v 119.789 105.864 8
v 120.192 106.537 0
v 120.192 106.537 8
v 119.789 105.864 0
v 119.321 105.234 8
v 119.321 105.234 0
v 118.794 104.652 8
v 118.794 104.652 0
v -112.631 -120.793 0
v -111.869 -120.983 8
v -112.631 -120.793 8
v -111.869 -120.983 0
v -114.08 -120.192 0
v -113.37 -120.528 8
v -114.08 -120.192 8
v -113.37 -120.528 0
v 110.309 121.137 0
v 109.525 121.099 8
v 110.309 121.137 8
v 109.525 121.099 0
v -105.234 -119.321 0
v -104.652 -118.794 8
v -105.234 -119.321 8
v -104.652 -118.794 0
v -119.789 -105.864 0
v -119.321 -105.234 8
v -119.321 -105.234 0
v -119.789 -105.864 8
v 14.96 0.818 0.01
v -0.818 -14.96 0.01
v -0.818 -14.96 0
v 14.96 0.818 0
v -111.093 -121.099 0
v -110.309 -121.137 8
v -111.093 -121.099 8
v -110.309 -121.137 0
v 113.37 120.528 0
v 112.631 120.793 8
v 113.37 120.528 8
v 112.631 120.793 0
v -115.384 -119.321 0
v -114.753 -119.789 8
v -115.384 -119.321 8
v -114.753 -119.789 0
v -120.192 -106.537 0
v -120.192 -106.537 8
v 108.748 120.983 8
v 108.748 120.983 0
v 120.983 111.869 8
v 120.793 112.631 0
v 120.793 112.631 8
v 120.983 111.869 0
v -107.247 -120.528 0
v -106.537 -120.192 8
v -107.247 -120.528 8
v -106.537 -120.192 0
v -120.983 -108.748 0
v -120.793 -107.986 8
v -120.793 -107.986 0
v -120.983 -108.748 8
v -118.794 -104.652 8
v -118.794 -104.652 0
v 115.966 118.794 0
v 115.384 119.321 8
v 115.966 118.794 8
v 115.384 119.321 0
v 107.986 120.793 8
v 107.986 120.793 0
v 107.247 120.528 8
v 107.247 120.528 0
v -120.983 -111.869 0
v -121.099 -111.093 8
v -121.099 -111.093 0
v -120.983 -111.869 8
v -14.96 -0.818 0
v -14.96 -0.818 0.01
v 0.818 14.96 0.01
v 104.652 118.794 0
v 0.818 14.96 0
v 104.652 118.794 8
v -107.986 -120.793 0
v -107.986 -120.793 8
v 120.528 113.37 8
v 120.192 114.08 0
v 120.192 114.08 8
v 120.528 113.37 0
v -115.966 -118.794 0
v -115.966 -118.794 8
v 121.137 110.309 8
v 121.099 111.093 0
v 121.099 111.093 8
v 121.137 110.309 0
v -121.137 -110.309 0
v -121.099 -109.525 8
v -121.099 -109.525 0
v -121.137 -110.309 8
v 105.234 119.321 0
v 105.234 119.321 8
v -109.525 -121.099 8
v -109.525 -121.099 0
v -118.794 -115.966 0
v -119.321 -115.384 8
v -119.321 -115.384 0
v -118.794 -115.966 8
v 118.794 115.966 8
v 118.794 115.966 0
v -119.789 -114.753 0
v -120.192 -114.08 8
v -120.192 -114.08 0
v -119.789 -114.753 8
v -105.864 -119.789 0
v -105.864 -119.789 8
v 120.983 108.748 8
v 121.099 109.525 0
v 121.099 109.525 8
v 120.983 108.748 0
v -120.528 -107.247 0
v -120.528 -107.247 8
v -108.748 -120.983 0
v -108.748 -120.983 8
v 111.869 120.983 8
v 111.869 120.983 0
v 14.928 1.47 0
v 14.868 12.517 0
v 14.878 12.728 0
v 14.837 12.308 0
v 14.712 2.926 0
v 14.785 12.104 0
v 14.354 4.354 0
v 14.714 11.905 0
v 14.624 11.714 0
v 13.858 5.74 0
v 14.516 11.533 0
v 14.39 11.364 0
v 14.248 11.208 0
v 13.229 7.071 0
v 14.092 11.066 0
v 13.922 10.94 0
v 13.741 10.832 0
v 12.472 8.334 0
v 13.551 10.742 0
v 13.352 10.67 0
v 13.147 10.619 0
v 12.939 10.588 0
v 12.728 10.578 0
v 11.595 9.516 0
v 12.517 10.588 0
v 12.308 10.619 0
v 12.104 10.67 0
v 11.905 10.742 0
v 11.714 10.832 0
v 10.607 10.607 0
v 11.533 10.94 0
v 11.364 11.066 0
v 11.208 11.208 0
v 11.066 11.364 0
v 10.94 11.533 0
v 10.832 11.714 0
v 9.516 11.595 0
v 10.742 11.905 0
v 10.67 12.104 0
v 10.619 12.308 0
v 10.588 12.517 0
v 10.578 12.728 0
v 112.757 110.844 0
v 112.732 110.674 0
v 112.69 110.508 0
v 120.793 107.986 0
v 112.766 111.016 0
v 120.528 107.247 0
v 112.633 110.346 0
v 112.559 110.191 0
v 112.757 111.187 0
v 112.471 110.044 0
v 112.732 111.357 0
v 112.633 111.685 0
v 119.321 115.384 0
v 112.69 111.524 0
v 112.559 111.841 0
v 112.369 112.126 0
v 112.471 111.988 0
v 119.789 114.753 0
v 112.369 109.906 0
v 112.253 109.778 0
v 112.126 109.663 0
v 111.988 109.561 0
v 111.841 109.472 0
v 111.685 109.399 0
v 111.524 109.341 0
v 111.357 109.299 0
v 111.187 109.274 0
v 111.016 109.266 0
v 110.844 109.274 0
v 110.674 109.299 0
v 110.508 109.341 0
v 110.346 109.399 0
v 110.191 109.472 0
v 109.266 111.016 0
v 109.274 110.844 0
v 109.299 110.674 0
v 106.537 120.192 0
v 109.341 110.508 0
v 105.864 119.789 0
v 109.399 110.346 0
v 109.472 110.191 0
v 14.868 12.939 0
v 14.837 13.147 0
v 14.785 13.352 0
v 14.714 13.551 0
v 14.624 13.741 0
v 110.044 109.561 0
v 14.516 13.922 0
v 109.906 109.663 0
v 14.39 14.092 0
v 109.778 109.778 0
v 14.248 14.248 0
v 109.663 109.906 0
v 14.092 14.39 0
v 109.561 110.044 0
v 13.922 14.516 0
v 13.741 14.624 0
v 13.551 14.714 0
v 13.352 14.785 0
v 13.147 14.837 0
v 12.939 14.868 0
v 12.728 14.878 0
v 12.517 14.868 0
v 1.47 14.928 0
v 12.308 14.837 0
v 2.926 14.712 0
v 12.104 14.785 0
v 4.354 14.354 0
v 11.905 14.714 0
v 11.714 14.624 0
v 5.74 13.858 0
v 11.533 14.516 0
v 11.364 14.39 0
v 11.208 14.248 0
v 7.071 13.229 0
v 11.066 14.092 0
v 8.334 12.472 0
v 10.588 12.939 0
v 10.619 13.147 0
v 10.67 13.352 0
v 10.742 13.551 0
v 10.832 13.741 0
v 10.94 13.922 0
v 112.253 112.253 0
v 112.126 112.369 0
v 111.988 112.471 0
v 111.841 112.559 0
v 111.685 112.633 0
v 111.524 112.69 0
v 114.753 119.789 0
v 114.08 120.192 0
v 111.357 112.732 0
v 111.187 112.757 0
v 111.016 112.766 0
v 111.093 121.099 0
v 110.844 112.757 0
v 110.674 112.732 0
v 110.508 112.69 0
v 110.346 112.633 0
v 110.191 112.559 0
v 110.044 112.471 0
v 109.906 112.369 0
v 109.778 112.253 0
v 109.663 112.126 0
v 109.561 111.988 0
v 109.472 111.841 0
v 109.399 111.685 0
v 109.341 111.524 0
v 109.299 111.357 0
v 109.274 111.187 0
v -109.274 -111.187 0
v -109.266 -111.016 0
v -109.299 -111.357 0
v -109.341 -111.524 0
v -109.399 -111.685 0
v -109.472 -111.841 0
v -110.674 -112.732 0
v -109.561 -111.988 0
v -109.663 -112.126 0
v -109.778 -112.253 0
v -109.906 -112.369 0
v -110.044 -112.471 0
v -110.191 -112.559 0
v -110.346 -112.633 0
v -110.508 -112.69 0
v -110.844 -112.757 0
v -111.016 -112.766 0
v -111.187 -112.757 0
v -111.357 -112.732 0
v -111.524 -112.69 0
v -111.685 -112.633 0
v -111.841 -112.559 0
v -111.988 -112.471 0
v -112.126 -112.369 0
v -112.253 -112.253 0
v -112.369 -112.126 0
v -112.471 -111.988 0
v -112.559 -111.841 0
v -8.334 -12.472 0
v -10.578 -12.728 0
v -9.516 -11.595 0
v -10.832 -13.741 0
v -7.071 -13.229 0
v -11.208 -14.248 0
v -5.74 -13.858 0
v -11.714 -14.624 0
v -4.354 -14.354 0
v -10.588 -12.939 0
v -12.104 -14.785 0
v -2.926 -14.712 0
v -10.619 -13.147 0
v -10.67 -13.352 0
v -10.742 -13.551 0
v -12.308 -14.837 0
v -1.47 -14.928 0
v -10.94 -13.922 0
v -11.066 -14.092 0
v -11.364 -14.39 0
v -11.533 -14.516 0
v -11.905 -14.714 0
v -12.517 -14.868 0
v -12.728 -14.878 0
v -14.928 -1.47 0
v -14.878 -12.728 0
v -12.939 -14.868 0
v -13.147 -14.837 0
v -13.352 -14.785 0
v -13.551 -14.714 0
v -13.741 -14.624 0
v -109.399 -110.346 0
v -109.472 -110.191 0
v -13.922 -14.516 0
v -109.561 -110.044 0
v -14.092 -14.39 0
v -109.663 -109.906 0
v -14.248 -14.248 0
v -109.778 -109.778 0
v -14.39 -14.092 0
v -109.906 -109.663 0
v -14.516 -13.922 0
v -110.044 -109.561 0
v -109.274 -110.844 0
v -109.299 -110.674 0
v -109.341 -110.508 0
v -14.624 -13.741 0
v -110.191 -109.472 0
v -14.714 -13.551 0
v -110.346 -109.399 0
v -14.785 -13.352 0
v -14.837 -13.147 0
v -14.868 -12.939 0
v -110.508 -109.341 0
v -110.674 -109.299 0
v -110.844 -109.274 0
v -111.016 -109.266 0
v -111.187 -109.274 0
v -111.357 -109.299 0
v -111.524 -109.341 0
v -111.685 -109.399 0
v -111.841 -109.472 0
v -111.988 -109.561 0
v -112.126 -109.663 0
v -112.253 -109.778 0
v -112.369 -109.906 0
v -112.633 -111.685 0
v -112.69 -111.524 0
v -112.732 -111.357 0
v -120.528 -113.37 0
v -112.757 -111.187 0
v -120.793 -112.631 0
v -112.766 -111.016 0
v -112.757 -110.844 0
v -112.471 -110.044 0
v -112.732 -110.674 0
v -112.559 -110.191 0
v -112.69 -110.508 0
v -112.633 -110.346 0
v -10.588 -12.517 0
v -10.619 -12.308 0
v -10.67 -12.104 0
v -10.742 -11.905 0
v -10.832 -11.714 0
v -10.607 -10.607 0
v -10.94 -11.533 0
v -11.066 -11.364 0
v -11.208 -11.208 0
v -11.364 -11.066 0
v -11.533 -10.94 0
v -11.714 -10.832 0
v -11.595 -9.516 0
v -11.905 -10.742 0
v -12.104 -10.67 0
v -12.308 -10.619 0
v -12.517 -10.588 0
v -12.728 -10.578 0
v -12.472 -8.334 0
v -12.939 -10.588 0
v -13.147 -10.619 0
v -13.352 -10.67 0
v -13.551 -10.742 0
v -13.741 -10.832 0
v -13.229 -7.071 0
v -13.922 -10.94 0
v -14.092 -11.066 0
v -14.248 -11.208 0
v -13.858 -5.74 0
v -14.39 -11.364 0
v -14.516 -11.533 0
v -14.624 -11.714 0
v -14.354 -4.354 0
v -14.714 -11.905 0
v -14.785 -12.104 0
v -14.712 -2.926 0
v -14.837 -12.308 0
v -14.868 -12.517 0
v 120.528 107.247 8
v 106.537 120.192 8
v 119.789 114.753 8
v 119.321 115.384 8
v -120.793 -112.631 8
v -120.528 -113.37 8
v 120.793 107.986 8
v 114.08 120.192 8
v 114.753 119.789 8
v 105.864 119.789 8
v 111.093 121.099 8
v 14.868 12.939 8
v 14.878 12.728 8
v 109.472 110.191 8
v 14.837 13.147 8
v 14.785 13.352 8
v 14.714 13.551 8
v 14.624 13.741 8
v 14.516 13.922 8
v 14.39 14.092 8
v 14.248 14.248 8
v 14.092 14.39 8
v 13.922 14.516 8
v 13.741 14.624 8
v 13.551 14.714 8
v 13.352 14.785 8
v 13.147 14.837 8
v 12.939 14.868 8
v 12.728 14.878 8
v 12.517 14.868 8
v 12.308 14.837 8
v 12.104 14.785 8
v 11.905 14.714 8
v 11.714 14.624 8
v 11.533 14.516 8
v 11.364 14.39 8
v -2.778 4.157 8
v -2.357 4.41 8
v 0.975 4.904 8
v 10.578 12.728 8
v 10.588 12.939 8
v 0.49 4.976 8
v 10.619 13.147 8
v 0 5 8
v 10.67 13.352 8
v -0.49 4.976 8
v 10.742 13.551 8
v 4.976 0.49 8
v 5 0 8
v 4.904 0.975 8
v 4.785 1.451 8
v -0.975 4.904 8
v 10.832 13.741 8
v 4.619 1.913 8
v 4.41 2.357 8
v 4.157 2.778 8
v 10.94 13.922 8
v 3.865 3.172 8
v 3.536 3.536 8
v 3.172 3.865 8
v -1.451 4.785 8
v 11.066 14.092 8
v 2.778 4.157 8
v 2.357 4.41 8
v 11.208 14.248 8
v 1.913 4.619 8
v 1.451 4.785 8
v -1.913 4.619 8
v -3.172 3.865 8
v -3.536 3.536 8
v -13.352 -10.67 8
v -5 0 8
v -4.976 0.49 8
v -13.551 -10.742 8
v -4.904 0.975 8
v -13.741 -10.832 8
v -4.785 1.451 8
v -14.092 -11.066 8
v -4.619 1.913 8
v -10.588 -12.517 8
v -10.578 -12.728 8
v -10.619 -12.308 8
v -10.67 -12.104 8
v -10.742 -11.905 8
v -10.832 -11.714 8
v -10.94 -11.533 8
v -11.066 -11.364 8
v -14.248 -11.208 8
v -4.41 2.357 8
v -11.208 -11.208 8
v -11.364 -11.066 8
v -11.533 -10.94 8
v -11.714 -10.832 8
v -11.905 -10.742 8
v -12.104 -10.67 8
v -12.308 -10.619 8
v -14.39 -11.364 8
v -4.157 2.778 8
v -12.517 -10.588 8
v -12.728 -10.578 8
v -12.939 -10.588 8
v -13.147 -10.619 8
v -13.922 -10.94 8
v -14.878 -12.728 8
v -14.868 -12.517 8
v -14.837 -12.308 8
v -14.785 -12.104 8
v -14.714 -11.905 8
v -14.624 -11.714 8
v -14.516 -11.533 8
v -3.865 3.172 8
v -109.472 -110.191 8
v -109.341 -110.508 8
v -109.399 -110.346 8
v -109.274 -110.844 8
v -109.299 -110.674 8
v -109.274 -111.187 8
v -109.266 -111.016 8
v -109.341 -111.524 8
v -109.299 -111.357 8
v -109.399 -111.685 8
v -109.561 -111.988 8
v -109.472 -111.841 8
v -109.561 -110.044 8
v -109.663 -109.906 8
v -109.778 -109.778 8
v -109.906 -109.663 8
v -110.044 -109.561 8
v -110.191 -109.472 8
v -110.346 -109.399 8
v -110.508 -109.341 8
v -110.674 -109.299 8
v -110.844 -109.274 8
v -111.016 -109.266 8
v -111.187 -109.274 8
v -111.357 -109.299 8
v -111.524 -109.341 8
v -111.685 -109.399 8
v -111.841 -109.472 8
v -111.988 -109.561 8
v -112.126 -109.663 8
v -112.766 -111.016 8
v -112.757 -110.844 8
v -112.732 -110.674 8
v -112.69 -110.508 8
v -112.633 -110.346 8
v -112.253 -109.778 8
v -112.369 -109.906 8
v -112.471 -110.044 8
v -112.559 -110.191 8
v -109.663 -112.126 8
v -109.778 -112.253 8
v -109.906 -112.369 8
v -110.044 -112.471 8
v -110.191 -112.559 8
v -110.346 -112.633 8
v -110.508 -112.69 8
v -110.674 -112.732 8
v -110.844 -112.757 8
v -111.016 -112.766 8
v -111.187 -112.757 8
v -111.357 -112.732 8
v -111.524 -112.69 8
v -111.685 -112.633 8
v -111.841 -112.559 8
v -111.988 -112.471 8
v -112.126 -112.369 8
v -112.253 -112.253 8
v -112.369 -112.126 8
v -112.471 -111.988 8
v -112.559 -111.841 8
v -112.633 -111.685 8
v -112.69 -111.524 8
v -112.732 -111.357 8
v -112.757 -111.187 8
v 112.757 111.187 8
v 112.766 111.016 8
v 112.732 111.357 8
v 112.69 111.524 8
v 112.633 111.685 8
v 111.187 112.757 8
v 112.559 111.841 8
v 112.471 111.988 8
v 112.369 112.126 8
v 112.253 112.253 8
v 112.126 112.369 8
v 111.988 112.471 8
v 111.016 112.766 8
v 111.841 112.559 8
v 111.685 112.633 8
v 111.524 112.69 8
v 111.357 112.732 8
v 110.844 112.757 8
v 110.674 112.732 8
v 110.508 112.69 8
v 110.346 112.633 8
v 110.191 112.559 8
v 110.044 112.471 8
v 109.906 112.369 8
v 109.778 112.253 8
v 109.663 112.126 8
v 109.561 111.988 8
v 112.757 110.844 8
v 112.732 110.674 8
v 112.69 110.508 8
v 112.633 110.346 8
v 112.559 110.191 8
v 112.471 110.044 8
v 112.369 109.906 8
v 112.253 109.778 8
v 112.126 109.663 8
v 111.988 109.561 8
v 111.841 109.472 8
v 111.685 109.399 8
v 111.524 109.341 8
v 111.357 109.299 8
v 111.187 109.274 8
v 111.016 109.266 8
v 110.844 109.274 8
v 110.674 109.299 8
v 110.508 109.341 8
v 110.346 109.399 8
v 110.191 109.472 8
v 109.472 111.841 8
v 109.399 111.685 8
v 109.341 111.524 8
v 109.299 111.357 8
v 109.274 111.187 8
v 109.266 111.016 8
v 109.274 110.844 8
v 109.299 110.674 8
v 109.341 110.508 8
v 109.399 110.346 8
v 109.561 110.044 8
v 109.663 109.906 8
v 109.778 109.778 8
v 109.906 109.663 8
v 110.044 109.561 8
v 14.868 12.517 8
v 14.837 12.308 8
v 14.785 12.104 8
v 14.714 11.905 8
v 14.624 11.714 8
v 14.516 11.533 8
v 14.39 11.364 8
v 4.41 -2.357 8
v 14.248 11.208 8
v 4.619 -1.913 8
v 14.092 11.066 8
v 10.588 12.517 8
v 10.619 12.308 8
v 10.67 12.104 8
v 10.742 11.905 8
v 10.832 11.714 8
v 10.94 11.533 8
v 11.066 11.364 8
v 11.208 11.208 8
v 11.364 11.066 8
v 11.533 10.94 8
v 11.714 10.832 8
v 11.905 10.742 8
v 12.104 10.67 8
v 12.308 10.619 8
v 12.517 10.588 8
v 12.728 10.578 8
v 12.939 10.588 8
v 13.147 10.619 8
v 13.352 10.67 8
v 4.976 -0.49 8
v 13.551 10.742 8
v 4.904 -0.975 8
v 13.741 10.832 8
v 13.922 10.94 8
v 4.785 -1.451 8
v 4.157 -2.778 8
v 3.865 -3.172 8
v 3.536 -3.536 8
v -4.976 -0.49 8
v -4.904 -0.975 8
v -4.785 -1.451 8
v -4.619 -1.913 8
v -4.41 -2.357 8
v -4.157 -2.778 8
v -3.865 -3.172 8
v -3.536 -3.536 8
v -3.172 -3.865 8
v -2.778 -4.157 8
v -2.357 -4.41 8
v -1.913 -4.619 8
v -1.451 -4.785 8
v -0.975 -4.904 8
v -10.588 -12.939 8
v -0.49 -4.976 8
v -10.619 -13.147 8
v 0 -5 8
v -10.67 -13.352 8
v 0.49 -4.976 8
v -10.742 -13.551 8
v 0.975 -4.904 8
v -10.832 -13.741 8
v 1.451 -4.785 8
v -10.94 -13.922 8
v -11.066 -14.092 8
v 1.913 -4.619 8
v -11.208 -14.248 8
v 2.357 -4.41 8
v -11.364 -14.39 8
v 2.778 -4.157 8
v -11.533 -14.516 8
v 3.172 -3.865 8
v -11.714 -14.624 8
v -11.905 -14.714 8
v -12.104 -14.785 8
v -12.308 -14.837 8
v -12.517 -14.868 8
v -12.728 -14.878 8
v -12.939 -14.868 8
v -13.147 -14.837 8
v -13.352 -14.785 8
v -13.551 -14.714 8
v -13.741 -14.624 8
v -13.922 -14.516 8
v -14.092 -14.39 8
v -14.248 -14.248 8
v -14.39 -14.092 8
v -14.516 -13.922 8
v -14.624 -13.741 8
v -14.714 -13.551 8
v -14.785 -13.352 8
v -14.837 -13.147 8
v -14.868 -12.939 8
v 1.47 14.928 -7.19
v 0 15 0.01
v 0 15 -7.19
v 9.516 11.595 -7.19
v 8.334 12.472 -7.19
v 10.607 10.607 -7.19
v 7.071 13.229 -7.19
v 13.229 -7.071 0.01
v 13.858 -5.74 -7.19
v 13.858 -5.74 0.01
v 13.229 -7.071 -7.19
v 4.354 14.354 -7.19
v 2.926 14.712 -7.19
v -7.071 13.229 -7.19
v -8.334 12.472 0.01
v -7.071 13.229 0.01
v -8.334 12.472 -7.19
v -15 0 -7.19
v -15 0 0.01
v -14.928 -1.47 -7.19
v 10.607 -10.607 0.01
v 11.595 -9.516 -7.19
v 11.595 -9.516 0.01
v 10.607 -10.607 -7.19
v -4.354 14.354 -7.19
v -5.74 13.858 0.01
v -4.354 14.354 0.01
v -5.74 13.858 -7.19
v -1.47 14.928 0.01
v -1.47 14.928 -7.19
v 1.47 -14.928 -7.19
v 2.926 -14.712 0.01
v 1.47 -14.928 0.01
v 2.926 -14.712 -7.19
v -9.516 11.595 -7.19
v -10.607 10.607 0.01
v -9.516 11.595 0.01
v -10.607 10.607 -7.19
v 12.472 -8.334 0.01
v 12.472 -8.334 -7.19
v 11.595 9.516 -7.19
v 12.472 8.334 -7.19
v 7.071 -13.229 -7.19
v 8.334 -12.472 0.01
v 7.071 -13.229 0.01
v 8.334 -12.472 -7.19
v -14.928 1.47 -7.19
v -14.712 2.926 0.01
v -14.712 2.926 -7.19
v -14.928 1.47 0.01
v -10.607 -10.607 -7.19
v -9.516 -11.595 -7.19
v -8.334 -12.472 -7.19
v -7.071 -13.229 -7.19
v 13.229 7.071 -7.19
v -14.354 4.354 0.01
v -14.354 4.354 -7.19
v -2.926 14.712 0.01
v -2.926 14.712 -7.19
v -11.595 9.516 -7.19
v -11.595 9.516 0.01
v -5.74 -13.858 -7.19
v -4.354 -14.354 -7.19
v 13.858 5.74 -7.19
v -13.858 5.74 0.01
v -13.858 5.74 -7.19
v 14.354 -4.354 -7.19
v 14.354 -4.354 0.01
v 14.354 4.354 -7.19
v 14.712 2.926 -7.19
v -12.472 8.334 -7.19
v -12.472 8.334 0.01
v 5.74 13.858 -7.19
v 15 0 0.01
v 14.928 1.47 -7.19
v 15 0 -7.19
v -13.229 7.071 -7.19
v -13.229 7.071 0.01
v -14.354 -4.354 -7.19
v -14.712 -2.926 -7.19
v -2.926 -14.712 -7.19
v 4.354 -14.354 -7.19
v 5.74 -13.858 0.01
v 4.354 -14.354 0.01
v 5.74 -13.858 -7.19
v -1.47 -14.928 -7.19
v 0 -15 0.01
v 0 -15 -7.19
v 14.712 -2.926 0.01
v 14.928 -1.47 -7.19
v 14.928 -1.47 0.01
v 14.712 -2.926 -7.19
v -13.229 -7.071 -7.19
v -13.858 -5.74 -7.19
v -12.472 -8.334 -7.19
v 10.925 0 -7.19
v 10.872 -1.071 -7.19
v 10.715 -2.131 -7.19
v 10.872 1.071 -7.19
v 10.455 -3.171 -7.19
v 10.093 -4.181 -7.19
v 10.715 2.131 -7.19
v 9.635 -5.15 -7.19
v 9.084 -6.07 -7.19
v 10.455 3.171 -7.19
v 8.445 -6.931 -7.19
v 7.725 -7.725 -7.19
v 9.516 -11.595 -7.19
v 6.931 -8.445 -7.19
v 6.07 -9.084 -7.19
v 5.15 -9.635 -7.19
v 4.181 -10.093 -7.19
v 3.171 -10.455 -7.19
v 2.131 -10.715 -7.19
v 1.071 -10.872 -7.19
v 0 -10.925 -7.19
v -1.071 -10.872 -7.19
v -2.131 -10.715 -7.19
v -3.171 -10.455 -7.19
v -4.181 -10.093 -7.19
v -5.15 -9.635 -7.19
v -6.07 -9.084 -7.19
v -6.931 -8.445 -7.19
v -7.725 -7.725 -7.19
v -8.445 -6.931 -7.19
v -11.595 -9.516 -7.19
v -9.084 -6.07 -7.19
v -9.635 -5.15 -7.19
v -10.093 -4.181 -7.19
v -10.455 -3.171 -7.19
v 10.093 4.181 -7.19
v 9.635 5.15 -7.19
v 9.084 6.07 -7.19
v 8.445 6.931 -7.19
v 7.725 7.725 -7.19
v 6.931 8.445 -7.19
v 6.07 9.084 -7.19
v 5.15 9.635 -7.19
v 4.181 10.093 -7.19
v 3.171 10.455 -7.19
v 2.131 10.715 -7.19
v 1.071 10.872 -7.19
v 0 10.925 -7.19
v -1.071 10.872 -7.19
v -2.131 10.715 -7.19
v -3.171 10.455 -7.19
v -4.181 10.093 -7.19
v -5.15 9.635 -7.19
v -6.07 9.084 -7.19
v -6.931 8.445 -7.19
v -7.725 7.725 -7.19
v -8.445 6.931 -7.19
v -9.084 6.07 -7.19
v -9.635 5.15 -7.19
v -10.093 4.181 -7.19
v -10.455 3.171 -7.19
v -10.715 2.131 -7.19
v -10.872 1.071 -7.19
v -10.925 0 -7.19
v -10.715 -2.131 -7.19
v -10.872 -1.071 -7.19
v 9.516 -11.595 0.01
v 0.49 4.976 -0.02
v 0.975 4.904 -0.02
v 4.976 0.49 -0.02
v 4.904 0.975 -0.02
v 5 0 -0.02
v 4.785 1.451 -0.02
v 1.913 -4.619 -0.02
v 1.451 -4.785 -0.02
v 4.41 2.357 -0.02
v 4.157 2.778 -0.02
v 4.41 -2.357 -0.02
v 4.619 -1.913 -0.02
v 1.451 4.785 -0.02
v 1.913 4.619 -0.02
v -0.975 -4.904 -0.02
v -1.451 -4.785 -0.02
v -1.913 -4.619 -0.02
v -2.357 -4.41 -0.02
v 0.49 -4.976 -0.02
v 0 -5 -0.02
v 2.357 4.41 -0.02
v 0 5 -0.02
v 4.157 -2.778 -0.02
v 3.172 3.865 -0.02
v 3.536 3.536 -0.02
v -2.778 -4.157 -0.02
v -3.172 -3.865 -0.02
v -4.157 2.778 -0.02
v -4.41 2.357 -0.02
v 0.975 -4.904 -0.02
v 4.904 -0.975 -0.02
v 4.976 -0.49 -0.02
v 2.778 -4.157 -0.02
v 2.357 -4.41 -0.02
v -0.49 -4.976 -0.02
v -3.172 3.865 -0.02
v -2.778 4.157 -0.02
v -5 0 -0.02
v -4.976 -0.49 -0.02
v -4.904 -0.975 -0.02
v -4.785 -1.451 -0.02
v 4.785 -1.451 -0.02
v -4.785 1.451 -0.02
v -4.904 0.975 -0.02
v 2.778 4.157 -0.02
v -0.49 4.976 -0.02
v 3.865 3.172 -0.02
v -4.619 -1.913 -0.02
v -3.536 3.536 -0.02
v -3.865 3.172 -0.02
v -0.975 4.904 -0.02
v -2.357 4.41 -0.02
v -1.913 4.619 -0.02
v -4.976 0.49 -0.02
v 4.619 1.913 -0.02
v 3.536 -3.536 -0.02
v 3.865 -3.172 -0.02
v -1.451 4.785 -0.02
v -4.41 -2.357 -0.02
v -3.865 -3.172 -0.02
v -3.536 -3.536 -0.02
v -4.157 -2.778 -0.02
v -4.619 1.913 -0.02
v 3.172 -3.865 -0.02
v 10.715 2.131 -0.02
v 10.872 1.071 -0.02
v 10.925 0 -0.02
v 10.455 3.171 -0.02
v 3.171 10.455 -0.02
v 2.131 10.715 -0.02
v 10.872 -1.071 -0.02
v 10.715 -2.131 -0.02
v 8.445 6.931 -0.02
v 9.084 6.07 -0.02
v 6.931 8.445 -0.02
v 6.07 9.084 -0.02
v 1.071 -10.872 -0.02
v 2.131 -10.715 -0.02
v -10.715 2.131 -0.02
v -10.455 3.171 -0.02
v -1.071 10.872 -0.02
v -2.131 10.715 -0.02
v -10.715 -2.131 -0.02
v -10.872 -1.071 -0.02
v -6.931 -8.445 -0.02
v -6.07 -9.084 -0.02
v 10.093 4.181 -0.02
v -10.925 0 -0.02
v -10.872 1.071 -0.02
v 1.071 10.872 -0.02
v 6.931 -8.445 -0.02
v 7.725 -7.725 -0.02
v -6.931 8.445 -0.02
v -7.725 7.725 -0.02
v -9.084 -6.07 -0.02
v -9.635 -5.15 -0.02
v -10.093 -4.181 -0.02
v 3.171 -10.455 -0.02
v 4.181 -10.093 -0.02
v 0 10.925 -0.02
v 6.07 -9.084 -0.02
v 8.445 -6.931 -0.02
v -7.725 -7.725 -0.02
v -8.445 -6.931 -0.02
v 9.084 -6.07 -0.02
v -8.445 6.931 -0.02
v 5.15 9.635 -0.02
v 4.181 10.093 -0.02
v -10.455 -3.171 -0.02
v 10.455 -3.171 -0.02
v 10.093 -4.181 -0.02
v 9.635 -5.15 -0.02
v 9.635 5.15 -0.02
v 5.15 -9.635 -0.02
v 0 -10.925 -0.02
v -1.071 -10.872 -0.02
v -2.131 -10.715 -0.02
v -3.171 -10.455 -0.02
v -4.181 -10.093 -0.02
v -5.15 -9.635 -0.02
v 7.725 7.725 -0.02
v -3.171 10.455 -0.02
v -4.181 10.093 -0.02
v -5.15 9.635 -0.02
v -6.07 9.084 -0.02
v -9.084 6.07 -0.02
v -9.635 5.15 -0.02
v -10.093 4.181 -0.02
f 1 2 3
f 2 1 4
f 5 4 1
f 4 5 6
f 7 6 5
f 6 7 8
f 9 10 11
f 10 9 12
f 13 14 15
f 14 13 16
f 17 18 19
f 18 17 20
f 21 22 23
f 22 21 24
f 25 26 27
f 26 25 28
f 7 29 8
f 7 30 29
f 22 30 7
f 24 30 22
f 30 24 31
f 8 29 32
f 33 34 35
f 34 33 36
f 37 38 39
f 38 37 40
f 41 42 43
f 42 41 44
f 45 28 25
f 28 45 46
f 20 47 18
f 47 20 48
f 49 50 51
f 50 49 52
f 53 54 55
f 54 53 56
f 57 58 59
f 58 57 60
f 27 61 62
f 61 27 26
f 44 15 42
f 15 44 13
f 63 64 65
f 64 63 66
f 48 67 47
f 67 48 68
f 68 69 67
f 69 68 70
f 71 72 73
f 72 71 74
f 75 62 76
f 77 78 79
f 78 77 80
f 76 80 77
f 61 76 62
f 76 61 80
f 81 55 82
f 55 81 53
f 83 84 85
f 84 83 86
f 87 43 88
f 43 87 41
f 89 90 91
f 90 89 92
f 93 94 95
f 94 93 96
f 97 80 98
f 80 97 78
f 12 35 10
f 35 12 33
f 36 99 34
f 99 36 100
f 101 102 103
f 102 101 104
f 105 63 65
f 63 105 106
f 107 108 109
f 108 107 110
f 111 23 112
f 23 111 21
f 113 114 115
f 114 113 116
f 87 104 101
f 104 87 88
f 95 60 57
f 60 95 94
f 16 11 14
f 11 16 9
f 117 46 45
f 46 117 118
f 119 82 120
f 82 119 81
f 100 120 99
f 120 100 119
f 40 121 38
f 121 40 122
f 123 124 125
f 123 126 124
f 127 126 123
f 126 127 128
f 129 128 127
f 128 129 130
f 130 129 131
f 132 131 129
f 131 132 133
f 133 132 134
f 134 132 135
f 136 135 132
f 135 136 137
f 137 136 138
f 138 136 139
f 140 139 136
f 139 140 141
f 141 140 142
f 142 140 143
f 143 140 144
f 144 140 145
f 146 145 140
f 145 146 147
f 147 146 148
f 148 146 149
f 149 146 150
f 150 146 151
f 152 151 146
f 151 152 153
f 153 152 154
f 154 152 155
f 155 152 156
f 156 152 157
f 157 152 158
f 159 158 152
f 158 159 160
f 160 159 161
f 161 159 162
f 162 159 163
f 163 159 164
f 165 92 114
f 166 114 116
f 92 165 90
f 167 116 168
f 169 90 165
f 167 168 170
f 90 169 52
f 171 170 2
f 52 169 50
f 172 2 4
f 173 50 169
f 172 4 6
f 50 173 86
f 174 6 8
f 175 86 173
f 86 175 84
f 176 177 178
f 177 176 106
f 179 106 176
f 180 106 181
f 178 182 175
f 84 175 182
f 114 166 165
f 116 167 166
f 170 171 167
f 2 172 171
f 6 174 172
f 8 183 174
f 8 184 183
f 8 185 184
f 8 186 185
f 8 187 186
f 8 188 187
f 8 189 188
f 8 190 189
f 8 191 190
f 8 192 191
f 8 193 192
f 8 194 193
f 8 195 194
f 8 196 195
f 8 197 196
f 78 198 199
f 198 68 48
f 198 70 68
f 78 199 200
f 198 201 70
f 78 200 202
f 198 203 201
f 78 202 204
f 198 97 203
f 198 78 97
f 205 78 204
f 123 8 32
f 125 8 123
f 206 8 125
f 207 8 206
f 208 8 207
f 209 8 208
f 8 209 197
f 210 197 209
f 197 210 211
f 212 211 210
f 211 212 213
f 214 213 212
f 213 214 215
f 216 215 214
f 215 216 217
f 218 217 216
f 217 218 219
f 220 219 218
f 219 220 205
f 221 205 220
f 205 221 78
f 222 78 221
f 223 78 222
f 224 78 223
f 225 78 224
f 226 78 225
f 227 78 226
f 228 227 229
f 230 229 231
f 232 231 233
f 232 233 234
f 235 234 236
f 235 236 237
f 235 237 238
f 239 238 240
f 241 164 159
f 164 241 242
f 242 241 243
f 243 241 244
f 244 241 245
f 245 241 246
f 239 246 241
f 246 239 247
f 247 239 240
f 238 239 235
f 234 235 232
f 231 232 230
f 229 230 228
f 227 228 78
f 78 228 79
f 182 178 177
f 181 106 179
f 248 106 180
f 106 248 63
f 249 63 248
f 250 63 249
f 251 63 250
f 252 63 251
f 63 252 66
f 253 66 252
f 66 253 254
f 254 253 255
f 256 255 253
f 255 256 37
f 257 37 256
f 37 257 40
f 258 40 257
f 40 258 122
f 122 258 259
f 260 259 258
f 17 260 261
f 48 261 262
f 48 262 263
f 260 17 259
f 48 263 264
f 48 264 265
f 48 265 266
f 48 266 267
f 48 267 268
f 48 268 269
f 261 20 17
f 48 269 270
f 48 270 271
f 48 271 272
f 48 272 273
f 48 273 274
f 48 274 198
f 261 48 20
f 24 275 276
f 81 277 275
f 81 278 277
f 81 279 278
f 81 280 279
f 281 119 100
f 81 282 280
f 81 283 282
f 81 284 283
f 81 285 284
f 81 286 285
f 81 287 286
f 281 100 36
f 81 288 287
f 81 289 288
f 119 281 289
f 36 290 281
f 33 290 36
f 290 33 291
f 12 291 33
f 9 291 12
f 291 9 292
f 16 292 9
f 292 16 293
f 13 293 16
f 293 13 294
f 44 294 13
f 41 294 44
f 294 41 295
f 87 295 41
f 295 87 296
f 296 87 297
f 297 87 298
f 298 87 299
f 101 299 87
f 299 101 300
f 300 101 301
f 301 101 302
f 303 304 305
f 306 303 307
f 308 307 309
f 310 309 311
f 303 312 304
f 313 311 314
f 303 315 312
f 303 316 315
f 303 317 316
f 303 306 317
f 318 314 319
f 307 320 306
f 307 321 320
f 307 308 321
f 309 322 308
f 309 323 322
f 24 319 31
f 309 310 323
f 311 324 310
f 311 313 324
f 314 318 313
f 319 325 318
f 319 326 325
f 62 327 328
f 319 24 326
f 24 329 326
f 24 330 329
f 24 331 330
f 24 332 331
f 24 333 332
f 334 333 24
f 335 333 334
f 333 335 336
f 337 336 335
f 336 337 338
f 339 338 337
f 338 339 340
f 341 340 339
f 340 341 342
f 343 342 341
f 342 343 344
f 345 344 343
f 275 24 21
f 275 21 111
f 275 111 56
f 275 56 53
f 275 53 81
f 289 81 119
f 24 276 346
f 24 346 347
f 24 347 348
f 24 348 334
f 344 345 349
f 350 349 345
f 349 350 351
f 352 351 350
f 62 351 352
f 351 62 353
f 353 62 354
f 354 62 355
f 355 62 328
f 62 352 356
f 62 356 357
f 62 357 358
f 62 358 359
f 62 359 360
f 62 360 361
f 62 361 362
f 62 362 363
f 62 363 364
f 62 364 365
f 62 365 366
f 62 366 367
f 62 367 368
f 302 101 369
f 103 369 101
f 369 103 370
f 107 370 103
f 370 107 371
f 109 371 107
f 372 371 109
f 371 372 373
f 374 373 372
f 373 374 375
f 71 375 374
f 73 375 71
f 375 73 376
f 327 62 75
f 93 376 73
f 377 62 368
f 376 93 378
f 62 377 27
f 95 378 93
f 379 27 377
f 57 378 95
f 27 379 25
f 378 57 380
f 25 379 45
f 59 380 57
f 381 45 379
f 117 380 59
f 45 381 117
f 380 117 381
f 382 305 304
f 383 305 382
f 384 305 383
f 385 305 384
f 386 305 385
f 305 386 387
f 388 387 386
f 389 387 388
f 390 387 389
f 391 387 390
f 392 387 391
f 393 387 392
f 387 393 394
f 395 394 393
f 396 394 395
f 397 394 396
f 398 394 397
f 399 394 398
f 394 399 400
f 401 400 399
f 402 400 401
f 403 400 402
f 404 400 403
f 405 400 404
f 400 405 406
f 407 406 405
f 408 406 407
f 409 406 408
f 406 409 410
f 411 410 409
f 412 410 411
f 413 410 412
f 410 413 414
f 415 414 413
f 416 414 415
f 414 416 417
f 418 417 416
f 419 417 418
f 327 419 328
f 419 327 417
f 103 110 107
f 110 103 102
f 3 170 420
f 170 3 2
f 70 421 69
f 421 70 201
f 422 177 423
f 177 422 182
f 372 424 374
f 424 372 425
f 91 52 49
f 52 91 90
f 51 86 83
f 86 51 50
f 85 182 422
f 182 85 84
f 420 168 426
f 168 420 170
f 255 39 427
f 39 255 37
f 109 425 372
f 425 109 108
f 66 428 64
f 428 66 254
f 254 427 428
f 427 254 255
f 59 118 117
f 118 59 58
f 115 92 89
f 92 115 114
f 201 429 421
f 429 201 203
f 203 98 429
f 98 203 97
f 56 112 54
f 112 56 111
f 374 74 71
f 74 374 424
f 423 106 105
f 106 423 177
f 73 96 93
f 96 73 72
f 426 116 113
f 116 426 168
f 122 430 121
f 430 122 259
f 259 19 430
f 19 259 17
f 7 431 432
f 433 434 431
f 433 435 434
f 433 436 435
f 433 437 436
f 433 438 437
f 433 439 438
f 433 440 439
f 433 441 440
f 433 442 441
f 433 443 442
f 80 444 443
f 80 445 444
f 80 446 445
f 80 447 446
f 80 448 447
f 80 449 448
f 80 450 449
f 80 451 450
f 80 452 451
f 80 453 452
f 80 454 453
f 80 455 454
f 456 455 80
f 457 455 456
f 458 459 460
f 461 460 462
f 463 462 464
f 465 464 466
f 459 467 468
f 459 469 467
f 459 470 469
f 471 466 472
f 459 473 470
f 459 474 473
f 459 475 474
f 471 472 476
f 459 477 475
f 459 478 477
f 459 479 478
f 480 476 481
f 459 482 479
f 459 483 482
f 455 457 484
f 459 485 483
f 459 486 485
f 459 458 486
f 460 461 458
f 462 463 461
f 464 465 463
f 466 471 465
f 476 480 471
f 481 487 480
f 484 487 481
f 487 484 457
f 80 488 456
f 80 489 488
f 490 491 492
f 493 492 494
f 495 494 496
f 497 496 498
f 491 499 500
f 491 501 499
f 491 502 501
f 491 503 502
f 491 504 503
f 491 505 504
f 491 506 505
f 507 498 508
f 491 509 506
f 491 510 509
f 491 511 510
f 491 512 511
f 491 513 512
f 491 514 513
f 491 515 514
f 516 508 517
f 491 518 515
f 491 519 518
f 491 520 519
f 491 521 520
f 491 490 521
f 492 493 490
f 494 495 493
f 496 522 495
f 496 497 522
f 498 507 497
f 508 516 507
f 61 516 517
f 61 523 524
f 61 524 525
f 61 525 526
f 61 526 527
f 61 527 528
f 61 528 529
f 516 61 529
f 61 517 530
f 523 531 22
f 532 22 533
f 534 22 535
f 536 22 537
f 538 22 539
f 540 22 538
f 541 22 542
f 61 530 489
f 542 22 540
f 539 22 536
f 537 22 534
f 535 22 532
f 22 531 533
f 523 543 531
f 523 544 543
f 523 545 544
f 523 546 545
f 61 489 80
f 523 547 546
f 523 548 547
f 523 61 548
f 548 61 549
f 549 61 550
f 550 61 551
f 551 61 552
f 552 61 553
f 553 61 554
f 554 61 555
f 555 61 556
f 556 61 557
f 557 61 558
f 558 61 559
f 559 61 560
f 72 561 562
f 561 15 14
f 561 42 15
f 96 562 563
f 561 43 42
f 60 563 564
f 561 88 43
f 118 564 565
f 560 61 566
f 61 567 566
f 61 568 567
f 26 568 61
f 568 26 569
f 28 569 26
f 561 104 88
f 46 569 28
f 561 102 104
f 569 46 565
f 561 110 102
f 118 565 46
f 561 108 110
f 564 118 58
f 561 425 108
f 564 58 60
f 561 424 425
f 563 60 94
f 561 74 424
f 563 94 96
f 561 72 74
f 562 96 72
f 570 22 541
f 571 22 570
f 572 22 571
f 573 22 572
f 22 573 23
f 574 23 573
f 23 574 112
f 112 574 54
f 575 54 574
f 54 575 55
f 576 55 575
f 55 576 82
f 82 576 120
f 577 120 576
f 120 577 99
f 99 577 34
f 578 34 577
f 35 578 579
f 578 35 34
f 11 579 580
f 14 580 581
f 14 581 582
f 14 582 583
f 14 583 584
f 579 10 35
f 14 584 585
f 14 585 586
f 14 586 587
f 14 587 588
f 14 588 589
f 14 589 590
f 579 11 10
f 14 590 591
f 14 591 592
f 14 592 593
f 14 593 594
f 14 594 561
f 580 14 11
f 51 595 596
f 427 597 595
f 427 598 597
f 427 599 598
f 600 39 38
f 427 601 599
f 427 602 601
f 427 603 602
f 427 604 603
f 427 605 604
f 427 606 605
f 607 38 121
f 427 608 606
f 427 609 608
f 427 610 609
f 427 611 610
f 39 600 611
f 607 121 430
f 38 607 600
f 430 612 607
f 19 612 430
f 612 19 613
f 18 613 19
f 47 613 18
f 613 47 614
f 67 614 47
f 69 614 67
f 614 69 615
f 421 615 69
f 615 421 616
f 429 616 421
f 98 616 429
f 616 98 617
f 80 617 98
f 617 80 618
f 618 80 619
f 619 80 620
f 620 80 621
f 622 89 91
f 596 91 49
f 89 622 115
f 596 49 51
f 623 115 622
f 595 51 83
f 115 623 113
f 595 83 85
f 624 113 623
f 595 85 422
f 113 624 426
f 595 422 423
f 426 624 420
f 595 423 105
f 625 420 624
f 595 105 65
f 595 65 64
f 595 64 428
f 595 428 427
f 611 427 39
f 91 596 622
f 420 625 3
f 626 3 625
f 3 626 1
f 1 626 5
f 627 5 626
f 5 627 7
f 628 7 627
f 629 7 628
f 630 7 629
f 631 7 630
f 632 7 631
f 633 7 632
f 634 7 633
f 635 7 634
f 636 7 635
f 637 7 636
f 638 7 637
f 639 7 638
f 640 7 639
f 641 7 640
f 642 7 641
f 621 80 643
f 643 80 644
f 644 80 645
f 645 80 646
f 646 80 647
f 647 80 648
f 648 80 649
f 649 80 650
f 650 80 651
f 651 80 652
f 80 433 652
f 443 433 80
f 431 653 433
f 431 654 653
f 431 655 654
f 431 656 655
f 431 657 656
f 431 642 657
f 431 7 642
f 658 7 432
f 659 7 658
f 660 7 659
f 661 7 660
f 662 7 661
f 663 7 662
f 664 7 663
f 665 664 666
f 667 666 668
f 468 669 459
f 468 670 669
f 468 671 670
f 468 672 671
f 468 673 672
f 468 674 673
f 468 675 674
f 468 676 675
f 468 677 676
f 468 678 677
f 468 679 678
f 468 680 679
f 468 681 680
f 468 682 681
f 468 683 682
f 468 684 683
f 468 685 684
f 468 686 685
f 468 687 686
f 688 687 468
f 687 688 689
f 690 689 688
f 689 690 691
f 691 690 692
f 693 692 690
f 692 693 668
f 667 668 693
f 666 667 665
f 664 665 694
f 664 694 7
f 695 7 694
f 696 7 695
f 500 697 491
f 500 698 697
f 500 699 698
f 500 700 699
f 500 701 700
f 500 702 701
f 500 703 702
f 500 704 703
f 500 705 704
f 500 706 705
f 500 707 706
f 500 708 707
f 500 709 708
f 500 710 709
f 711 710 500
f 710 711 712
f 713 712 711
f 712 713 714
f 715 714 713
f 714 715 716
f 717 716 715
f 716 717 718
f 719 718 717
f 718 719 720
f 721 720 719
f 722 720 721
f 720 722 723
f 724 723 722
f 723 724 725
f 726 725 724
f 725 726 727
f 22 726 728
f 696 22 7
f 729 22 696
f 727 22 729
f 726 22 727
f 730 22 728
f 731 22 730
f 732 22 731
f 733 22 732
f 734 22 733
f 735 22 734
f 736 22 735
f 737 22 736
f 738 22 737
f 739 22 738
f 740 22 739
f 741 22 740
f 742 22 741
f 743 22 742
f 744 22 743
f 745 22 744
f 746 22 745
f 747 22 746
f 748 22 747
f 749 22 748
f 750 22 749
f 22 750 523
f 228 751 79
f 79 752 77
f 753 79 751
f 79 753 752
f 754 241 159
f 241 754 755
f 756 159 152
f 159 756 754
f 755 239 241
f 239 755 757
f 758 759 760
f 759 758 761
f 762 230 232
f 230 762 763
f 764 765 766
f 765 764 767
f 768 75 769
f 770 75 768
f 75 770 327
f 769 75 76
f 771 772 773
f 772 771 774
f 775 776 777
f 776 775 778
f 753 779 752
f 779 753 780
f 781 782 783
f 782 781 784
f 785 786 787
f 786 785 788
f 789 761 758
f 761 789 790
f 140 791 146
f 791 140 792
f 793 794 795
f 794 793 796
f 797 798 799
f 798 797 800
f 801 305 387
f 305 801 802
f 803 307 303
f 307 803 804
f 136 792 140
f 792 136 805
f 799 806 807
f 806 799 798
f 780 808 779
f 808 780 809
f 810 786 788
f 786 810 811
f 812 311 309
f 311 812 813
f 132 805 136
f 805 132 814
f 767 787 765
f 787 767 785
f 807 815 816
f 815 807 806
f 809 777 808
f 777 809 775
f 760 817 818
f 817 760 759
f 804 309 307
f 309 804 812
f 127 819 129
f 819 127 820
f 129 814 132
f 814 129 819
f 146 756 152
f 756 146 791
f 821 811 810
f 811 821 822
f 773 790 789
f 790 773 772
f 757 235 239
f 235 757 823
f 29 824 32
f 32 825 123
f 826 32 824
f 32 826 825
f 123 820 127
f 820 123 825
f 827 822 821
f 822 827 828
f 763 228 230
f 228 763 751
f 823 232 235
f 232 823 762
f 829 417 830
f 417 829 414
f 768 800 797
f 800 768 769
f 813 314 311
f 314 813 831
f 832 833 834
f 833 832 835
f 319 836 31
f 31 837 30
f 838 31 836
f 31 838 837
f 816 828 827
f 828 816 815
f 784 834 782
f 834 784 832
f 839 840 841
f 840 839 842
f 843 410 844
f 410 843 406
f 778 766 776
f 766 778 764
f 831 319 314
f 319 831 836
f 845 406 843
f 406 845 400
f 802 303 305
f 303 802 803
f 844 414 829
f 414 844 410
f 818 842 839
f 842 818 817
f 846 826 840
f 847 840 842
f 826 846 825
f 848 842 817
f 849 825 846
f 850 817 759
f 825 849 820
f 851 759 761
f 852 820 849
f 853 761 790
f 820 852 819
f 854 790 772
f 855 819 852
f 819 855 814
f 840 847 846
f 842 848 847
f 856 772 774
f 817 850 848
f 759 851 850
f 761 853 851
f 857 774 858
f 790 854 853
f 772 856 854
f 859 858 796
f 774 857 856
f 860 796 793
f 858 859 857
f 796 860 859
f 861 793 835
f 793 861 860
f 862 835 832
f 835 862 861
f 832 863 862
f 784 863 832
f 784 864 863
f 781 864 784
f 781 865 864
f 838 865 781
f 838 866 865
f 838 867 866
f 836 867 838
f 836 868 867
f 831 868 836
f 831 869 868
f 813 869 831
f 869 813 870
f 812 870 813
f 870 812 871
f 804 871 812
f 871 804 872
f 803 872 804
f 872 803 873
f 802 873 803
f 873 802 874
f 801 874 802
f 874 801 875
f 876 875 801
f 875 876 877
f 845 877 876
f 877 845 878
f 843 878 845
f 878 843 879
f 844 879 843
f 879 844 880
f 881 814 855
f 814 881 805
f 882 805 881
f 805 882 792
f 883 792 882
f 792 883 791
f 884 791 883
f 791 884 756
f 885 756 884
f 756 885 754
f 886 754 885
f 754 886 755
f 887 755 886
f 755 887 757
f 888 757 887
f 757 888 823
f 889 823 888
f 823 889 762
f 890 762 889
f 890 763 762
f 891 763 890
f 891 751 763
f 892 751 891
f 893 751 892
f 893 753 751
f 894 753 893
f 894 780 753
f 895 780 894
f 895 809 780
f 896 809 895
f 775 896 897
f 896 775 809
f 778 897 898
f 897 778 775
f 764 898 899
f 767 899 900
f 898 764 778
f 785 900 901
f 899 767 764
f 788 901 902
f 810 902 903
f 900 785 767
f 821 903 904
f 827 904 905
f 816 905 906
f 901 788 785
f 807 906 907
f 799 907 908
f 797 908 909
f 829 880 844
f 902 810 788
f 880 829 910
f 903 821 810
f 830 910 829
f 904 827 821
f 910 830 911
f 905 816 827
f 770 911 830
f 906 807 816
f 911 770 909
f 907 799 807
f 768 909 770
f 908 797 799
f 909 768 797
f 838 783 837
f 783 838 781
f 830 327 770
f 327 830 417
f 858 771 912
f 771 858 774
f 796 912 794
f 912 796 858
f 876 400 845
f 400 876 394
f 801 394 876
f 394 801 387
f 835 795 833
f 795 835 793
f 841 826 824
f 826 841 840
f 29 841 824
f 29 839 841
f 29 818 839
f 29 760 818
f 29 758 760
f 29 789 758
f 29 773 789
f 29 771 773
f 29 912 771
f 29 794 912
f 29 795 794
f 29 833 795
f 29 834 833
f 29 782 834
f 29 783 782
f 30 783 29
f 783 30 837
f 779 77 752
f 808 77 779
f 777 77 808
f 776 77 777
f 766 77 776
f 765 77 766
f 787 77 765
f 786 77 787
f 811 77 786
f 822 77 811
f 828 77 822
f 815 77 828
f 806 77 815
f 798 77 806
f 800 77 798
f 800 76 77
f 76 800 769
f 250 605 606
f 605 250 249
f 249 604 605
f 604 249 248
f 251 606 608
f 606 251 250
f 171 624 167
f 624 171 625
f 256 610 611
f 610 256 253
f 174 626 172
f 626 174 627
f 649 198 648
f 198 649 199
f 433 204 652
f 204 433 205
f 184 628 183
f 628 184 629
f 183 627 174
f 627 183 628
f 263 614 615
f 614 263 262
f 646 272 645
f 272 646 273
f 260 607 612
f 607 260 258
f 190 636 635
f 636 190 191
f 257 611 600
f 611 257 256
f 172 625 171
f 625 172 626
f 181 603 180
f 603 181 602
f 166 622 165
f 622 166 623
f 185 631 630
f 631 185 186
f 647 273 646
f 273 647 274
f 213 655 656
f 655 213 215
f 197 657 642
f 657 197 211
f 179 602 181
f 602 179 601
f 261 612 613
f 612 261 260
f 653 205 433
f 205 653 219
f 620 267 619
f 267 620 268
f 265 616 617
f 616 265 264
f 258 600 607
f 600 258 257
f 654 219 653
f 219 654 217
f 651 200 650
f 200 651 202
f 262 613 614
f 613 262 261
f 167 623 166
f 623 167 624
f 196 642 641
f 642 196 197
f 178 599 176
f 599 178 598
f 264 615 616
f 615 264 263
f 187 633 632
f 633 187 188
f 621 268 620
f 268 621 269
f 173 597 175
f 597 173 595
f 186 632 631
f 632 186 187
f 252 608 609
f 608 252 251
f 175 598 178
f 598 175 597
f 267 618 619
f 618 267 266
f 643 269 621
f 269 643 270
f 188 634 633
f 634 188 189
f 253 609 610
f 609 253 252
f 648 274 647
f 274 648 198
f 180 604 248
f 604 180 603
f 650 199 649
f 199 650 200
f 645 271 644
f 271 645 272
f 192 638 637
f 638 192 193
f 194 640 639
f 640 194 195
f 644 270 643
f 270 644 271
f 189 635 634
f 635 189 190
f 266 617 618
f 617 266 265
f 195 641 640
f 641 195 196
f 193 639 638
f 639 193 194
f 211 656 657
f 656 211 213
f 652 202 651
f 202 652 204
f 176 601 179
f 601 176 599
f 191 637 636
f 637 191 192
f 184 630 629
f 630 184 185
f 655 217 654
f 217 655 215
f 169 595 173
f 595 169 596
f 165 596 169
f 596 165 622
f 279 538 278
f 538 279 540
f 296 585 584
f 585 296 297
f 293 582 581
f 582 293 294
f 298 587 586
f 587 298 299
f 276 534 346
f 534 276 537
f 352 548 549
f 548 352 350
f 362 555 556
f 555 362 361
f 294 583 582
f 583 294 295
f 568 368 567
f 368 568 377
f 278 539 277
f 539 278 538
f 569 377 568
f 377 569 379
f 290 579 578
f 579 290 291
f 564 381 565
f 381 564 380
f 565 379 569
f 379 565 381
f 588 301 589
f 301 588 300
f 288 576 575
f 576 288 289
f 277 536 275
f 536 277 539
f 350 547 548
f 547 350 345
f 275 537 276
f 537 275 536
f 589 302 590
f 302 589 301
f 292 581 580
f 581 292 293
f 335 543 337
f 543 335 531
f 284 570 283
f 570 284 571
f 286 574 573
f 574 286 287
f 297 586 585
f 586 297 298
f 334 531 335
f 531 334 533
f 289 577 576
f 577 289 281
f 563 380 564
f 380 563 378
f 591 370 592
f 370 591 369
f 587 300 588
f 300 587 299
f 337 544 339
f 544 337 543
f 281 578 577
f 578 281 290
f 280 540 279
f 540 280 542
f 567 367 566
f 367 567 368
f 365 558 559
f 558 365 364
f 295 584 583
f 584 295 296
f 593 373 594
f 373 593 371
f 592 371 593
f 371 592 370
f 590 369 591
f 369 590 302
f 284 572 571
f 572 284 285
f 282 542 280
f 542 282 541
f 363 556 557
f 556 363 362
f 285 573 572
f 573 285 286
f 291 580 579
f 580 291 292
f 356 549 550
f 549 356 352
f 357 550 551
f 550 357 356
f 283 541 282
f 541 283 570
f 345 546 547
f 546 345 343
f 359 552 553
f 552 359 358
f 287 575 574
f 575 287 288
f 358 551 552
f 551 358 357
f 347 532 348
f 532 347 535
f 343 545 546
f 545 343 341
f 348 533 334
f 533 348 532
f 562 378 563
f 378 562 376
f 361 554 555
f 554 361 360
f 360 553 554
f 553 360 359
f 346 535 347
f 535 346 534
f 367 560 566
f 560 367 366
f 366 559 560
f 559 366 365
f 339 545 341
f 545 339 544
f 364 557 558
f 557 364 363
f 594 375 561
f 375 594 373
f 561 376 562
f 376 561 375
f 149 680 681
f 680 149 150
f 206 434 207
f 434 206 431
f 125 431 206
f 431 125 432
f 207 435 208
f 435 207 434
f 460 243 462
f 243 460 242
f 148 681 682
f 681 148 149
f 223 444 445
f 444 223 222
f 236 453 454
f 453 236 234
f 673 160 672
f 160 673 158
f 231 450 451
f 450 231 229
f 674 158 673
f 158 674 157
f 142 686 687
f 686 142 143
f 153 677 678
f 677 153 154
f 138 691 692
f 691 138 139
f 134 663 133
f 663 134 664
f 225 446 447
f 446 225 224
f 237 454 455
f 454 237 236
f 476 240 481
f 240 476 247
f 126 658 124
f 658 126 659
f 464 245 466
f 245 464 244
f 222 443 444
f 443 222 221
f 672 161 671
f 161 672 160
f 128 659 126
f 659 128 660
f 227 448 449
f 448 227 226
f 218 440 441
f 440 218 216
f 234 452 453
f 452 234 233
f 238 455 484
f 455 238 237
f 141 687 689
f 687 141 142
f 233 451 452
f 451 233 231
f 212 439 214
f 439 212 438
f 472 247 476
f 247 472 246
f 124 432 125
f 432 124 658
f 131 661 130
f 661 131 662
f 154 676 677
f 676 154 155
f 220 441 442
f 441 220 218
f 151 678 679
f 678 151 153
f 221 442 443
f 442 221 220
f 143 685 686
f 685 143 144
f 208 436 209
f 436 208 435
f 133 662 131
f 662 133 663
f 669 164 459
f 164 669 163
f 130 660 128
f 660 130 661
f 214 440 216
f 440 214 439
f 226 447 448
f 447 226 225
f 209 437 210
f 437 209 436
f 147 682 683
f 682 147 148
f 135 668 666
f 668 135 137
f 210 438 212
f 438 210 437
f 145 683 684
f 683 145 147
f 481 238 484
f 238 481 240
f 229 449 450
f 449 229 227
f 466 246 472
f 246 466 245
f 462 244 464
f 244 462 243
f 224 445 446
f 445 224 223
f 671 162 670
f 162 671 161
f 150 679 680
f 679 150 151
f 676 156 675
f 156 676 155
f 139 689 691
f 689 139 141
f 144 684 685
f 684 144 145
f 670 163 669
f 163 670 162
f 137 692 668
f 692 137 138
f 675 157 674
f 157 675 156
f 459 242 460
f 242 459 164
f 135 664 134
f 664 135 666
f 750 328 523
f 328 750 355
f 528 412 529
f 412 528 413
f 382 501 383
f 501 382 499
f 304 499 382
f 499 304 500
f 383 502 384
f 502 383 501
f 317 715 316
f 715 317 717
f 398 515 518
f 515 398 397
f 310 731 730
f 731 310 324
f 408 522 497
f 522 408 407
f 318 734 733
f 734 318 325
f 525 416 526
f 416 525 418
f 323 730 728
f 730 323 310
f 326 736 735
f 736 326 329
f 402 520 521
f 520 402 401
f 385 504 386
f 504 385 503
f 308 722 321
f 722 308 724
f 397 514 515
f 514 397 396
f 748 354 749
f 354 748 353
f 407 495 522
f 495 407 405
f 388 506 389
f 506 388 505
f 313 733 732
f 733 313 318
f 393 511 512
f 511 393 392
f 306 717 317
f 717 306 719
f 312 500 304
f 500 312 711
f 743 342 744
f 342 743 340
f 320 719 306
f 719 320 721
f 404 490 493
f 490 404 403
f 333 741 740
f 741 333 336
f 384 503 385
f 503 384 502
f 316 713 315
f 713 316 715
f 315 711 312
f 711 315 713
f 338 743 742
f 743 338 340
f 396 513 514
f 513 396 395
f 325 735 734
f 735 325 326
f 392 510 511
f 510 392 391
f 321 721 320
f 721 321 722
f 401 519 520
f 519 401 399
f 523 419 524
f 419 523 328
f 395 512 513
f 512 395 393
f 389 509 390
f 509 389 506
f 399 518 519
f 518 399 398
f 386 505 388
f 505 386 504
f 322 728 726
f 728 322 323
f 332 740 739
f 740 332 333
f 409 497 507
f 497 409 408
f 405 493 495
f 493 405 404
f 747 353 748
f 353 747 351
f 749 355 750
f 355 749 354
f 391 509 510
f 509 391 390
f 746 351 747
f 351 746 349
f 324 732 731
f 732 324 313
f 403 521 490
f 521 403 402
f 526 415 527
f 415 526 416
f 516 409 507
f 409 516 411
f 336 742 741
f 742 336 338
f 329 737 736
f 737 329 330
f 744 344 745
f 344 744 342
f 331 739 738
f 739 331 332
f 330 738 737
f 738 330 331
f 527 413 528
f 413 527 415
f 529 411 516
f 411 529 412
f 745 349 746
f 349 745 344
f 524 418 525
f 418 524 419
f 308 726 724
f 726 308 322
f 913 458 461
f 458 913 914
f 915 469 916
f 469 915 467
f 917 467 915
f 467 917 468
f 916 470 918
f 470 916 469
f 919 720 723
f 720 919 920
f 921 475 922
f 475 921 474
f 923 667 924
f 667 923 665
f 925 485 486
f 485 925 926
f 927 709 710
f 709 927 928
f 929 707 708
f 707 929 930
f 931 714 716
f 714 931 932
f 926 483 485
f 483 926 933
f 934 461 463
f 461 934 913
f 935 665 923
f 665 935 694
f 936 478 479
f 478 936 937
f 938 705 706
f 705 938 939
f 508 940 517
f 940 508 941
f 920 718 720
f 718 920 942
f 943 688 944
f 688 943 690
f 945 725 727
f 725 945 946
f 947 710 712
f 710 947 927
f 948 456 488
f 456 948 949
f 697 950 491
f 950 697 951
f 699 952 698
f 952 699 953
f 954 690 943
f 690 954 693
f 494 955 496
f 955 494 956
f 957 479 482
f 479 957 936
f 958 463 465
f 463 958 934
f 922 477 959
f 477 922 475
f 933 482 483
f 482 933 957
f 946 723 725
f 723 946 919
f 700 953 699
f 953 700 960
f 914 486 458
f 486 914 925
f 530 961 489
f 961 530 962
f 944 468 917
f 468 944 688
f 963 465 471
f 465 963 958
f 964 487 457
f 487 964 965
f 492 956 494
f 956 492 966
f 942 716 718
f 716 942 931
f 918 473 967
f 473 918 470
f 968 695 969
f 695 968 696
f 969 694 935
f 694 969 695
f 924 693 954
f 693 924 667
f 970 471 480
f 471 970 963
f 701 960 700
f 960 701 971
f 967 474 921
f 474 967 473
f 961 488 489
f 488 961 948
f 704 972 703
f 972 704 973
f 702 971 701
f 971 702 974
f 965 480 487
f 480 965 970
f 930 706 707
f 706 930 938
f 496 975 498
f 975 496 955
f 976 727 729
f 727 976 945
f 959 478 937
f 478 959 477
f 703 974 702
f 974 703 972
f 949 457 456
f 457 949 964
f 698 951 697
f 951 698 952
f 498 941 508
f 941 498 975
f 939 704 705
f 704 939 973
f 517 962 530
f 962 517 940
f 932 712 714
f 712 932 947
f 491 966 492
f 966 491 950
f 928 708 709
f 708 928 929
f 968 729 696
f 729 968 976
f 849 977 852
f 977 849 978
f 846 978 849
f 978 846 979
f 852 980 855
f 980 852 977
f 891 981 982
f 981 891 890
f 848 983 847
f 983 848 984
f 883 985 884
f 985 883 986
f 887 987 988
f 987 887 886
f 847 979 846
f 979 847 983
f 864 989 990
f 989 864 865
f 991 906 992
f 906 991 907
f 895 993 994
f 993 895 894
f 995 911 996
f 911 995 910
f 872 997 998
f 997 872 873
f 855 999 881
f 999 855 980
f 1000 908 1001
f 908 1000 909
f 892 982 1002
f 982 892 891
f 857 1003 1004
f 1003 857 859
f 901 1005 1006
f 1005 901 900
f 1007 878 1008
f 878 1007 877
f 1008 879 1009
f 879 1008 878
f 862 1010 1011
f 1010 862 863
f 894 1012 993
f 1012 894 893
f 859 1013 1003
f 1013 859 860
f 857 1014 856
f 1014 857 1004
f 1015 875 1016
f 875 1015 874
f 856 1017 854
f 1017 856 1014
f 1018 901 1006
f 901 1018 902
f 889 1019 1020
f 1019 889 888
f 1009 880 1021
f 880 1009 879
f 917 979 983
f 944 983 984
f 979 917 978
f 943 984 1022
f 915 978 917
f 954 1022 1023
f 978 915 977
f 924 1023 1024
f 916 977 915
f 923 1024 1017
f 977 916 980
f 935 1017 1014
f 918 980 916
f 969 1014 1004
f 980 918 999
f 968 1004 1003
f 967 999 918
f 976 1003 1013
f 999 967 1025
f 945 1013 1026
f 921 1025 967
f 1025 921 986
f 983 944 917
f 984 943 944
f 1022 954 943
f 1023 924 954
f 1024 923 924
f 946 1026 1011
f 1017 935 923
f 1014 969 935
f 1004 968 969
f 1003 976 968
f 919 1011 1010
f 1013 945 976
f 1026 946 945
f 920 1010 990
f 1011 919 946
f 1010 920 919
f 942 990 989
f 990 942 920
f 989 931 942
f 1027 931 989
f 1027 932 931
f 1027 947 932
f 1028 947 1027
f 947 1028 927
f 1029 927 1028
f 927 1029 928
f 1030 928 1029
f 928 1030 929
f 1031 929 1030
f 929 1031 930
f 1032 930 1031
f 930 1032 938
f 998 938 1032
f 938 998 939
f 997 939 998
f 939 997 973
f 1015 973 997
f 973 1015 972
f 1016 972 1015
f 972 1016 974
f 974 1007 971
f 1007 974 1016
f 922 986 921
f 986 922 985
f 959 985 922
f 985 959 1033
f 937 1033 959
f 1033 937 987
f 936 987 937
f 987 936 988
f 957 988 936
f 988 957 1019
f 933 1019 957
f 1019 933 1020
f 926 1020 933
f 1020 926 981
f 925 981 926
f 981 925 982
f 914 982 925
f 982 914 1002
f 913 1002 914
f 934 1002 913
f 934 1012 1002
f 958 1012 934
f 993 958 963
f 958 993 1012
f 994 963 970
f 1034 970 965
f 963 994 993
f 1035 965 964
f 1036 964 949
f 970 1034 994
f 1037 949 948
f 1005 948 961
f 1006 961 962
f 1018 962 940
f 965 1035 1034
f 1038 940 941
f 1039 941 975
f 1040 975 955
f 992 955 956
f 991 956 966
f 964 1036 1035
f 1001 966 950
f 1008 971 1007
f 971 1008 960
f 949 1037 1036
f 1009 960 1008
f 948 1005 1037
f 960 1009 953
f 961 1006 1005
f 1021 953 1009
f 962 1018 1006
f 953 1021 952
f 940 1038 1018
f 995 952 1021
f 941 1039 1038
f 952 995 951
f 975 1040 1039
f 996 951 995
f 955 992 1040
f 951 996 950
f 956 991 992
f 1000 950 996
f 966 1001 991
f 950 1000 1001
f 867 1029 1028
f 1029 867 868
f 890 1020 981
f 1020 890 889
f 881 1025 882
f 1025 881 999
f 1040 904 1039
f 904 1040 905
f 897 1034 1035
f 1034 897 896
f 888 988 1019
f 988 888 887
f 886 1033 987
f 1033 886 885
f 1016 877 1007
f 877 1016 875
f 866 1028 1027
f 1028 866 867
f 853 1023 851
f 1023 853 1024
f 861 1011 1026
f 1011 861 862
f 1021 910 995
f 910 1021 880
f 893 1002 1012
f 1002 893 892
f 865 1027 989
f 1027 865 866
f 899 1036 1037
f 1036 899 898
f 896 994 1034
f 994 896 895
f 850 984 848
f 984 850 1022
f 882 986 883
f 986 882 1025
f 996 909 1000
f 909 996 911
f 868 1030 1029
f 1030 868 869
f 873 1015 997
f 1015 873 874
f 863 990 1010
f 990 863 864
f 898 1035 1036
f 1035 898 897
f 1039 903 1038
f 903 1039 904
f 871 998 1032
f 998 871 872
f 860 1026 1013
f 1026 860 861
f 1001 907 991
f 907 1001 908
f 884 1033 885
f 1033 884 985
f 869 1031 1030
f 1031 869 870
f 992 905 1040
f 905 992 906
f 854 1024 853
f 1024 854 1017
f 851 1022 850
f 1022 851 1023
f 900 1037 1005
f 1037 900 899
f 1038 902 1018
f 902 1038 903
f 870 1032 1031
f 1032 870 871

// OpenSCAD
// Gen-DP — front BEARING BRIDGE (bar endbell, 2026-10-10): a 608 boss on a 20 mm wide bar that spans the
// two frame rods at 45 deg and 45+180 deg (R = flange_bolt_r). The front bridge uses the rods at 45/225 deg, the rear
// bridge the rods at 135/315 deg, so the two bridges cross at 90 deg and the stator is held at 4 points.
// A bar instead of a full disc is what lets this big-ring kit fit ONE 410 mm plate. Print flat face DOWN (boss up, no supports).
// Brace holes (temporary M4 jack rods, R = brace_r) sit on the bar axis.
include <parameters.scad>;
$fn = 64;
bar_w = 20;
bar_len = 2 * (flange_bolt_r + 9);
module bar_2d() { offset(r=8) offset(delta=-8) square([bar_len, bar_w], center=true); }
difference() {
    rotate([0, 0, 45]) union() {
        linear_extrude(endbell_thick) bar_2d();
        translate([0, 0, -bearing_h + 0.01]) cylinder(d=30, h=bearing_h);
    }
    translate([0, 0, -bearing_h - 0.1]) cylinder(d=endbell_shaft_clear, h=50);
    translate([0, 0, -bearing_h - 0.02]) cylinder(d=bearing_d, h=bearing_h);
    for (s = [0, 180]) rotate([0, 0, 45 + s]) translate([flange_bolt_r, 0, -20]) cylinder(d=m3_clear, h=60);
    for (a = brace_angles) translate([brace_r*cos(a), brace_r*sin(a), -20]) cylinder(d=brace_d, h=50);
}
